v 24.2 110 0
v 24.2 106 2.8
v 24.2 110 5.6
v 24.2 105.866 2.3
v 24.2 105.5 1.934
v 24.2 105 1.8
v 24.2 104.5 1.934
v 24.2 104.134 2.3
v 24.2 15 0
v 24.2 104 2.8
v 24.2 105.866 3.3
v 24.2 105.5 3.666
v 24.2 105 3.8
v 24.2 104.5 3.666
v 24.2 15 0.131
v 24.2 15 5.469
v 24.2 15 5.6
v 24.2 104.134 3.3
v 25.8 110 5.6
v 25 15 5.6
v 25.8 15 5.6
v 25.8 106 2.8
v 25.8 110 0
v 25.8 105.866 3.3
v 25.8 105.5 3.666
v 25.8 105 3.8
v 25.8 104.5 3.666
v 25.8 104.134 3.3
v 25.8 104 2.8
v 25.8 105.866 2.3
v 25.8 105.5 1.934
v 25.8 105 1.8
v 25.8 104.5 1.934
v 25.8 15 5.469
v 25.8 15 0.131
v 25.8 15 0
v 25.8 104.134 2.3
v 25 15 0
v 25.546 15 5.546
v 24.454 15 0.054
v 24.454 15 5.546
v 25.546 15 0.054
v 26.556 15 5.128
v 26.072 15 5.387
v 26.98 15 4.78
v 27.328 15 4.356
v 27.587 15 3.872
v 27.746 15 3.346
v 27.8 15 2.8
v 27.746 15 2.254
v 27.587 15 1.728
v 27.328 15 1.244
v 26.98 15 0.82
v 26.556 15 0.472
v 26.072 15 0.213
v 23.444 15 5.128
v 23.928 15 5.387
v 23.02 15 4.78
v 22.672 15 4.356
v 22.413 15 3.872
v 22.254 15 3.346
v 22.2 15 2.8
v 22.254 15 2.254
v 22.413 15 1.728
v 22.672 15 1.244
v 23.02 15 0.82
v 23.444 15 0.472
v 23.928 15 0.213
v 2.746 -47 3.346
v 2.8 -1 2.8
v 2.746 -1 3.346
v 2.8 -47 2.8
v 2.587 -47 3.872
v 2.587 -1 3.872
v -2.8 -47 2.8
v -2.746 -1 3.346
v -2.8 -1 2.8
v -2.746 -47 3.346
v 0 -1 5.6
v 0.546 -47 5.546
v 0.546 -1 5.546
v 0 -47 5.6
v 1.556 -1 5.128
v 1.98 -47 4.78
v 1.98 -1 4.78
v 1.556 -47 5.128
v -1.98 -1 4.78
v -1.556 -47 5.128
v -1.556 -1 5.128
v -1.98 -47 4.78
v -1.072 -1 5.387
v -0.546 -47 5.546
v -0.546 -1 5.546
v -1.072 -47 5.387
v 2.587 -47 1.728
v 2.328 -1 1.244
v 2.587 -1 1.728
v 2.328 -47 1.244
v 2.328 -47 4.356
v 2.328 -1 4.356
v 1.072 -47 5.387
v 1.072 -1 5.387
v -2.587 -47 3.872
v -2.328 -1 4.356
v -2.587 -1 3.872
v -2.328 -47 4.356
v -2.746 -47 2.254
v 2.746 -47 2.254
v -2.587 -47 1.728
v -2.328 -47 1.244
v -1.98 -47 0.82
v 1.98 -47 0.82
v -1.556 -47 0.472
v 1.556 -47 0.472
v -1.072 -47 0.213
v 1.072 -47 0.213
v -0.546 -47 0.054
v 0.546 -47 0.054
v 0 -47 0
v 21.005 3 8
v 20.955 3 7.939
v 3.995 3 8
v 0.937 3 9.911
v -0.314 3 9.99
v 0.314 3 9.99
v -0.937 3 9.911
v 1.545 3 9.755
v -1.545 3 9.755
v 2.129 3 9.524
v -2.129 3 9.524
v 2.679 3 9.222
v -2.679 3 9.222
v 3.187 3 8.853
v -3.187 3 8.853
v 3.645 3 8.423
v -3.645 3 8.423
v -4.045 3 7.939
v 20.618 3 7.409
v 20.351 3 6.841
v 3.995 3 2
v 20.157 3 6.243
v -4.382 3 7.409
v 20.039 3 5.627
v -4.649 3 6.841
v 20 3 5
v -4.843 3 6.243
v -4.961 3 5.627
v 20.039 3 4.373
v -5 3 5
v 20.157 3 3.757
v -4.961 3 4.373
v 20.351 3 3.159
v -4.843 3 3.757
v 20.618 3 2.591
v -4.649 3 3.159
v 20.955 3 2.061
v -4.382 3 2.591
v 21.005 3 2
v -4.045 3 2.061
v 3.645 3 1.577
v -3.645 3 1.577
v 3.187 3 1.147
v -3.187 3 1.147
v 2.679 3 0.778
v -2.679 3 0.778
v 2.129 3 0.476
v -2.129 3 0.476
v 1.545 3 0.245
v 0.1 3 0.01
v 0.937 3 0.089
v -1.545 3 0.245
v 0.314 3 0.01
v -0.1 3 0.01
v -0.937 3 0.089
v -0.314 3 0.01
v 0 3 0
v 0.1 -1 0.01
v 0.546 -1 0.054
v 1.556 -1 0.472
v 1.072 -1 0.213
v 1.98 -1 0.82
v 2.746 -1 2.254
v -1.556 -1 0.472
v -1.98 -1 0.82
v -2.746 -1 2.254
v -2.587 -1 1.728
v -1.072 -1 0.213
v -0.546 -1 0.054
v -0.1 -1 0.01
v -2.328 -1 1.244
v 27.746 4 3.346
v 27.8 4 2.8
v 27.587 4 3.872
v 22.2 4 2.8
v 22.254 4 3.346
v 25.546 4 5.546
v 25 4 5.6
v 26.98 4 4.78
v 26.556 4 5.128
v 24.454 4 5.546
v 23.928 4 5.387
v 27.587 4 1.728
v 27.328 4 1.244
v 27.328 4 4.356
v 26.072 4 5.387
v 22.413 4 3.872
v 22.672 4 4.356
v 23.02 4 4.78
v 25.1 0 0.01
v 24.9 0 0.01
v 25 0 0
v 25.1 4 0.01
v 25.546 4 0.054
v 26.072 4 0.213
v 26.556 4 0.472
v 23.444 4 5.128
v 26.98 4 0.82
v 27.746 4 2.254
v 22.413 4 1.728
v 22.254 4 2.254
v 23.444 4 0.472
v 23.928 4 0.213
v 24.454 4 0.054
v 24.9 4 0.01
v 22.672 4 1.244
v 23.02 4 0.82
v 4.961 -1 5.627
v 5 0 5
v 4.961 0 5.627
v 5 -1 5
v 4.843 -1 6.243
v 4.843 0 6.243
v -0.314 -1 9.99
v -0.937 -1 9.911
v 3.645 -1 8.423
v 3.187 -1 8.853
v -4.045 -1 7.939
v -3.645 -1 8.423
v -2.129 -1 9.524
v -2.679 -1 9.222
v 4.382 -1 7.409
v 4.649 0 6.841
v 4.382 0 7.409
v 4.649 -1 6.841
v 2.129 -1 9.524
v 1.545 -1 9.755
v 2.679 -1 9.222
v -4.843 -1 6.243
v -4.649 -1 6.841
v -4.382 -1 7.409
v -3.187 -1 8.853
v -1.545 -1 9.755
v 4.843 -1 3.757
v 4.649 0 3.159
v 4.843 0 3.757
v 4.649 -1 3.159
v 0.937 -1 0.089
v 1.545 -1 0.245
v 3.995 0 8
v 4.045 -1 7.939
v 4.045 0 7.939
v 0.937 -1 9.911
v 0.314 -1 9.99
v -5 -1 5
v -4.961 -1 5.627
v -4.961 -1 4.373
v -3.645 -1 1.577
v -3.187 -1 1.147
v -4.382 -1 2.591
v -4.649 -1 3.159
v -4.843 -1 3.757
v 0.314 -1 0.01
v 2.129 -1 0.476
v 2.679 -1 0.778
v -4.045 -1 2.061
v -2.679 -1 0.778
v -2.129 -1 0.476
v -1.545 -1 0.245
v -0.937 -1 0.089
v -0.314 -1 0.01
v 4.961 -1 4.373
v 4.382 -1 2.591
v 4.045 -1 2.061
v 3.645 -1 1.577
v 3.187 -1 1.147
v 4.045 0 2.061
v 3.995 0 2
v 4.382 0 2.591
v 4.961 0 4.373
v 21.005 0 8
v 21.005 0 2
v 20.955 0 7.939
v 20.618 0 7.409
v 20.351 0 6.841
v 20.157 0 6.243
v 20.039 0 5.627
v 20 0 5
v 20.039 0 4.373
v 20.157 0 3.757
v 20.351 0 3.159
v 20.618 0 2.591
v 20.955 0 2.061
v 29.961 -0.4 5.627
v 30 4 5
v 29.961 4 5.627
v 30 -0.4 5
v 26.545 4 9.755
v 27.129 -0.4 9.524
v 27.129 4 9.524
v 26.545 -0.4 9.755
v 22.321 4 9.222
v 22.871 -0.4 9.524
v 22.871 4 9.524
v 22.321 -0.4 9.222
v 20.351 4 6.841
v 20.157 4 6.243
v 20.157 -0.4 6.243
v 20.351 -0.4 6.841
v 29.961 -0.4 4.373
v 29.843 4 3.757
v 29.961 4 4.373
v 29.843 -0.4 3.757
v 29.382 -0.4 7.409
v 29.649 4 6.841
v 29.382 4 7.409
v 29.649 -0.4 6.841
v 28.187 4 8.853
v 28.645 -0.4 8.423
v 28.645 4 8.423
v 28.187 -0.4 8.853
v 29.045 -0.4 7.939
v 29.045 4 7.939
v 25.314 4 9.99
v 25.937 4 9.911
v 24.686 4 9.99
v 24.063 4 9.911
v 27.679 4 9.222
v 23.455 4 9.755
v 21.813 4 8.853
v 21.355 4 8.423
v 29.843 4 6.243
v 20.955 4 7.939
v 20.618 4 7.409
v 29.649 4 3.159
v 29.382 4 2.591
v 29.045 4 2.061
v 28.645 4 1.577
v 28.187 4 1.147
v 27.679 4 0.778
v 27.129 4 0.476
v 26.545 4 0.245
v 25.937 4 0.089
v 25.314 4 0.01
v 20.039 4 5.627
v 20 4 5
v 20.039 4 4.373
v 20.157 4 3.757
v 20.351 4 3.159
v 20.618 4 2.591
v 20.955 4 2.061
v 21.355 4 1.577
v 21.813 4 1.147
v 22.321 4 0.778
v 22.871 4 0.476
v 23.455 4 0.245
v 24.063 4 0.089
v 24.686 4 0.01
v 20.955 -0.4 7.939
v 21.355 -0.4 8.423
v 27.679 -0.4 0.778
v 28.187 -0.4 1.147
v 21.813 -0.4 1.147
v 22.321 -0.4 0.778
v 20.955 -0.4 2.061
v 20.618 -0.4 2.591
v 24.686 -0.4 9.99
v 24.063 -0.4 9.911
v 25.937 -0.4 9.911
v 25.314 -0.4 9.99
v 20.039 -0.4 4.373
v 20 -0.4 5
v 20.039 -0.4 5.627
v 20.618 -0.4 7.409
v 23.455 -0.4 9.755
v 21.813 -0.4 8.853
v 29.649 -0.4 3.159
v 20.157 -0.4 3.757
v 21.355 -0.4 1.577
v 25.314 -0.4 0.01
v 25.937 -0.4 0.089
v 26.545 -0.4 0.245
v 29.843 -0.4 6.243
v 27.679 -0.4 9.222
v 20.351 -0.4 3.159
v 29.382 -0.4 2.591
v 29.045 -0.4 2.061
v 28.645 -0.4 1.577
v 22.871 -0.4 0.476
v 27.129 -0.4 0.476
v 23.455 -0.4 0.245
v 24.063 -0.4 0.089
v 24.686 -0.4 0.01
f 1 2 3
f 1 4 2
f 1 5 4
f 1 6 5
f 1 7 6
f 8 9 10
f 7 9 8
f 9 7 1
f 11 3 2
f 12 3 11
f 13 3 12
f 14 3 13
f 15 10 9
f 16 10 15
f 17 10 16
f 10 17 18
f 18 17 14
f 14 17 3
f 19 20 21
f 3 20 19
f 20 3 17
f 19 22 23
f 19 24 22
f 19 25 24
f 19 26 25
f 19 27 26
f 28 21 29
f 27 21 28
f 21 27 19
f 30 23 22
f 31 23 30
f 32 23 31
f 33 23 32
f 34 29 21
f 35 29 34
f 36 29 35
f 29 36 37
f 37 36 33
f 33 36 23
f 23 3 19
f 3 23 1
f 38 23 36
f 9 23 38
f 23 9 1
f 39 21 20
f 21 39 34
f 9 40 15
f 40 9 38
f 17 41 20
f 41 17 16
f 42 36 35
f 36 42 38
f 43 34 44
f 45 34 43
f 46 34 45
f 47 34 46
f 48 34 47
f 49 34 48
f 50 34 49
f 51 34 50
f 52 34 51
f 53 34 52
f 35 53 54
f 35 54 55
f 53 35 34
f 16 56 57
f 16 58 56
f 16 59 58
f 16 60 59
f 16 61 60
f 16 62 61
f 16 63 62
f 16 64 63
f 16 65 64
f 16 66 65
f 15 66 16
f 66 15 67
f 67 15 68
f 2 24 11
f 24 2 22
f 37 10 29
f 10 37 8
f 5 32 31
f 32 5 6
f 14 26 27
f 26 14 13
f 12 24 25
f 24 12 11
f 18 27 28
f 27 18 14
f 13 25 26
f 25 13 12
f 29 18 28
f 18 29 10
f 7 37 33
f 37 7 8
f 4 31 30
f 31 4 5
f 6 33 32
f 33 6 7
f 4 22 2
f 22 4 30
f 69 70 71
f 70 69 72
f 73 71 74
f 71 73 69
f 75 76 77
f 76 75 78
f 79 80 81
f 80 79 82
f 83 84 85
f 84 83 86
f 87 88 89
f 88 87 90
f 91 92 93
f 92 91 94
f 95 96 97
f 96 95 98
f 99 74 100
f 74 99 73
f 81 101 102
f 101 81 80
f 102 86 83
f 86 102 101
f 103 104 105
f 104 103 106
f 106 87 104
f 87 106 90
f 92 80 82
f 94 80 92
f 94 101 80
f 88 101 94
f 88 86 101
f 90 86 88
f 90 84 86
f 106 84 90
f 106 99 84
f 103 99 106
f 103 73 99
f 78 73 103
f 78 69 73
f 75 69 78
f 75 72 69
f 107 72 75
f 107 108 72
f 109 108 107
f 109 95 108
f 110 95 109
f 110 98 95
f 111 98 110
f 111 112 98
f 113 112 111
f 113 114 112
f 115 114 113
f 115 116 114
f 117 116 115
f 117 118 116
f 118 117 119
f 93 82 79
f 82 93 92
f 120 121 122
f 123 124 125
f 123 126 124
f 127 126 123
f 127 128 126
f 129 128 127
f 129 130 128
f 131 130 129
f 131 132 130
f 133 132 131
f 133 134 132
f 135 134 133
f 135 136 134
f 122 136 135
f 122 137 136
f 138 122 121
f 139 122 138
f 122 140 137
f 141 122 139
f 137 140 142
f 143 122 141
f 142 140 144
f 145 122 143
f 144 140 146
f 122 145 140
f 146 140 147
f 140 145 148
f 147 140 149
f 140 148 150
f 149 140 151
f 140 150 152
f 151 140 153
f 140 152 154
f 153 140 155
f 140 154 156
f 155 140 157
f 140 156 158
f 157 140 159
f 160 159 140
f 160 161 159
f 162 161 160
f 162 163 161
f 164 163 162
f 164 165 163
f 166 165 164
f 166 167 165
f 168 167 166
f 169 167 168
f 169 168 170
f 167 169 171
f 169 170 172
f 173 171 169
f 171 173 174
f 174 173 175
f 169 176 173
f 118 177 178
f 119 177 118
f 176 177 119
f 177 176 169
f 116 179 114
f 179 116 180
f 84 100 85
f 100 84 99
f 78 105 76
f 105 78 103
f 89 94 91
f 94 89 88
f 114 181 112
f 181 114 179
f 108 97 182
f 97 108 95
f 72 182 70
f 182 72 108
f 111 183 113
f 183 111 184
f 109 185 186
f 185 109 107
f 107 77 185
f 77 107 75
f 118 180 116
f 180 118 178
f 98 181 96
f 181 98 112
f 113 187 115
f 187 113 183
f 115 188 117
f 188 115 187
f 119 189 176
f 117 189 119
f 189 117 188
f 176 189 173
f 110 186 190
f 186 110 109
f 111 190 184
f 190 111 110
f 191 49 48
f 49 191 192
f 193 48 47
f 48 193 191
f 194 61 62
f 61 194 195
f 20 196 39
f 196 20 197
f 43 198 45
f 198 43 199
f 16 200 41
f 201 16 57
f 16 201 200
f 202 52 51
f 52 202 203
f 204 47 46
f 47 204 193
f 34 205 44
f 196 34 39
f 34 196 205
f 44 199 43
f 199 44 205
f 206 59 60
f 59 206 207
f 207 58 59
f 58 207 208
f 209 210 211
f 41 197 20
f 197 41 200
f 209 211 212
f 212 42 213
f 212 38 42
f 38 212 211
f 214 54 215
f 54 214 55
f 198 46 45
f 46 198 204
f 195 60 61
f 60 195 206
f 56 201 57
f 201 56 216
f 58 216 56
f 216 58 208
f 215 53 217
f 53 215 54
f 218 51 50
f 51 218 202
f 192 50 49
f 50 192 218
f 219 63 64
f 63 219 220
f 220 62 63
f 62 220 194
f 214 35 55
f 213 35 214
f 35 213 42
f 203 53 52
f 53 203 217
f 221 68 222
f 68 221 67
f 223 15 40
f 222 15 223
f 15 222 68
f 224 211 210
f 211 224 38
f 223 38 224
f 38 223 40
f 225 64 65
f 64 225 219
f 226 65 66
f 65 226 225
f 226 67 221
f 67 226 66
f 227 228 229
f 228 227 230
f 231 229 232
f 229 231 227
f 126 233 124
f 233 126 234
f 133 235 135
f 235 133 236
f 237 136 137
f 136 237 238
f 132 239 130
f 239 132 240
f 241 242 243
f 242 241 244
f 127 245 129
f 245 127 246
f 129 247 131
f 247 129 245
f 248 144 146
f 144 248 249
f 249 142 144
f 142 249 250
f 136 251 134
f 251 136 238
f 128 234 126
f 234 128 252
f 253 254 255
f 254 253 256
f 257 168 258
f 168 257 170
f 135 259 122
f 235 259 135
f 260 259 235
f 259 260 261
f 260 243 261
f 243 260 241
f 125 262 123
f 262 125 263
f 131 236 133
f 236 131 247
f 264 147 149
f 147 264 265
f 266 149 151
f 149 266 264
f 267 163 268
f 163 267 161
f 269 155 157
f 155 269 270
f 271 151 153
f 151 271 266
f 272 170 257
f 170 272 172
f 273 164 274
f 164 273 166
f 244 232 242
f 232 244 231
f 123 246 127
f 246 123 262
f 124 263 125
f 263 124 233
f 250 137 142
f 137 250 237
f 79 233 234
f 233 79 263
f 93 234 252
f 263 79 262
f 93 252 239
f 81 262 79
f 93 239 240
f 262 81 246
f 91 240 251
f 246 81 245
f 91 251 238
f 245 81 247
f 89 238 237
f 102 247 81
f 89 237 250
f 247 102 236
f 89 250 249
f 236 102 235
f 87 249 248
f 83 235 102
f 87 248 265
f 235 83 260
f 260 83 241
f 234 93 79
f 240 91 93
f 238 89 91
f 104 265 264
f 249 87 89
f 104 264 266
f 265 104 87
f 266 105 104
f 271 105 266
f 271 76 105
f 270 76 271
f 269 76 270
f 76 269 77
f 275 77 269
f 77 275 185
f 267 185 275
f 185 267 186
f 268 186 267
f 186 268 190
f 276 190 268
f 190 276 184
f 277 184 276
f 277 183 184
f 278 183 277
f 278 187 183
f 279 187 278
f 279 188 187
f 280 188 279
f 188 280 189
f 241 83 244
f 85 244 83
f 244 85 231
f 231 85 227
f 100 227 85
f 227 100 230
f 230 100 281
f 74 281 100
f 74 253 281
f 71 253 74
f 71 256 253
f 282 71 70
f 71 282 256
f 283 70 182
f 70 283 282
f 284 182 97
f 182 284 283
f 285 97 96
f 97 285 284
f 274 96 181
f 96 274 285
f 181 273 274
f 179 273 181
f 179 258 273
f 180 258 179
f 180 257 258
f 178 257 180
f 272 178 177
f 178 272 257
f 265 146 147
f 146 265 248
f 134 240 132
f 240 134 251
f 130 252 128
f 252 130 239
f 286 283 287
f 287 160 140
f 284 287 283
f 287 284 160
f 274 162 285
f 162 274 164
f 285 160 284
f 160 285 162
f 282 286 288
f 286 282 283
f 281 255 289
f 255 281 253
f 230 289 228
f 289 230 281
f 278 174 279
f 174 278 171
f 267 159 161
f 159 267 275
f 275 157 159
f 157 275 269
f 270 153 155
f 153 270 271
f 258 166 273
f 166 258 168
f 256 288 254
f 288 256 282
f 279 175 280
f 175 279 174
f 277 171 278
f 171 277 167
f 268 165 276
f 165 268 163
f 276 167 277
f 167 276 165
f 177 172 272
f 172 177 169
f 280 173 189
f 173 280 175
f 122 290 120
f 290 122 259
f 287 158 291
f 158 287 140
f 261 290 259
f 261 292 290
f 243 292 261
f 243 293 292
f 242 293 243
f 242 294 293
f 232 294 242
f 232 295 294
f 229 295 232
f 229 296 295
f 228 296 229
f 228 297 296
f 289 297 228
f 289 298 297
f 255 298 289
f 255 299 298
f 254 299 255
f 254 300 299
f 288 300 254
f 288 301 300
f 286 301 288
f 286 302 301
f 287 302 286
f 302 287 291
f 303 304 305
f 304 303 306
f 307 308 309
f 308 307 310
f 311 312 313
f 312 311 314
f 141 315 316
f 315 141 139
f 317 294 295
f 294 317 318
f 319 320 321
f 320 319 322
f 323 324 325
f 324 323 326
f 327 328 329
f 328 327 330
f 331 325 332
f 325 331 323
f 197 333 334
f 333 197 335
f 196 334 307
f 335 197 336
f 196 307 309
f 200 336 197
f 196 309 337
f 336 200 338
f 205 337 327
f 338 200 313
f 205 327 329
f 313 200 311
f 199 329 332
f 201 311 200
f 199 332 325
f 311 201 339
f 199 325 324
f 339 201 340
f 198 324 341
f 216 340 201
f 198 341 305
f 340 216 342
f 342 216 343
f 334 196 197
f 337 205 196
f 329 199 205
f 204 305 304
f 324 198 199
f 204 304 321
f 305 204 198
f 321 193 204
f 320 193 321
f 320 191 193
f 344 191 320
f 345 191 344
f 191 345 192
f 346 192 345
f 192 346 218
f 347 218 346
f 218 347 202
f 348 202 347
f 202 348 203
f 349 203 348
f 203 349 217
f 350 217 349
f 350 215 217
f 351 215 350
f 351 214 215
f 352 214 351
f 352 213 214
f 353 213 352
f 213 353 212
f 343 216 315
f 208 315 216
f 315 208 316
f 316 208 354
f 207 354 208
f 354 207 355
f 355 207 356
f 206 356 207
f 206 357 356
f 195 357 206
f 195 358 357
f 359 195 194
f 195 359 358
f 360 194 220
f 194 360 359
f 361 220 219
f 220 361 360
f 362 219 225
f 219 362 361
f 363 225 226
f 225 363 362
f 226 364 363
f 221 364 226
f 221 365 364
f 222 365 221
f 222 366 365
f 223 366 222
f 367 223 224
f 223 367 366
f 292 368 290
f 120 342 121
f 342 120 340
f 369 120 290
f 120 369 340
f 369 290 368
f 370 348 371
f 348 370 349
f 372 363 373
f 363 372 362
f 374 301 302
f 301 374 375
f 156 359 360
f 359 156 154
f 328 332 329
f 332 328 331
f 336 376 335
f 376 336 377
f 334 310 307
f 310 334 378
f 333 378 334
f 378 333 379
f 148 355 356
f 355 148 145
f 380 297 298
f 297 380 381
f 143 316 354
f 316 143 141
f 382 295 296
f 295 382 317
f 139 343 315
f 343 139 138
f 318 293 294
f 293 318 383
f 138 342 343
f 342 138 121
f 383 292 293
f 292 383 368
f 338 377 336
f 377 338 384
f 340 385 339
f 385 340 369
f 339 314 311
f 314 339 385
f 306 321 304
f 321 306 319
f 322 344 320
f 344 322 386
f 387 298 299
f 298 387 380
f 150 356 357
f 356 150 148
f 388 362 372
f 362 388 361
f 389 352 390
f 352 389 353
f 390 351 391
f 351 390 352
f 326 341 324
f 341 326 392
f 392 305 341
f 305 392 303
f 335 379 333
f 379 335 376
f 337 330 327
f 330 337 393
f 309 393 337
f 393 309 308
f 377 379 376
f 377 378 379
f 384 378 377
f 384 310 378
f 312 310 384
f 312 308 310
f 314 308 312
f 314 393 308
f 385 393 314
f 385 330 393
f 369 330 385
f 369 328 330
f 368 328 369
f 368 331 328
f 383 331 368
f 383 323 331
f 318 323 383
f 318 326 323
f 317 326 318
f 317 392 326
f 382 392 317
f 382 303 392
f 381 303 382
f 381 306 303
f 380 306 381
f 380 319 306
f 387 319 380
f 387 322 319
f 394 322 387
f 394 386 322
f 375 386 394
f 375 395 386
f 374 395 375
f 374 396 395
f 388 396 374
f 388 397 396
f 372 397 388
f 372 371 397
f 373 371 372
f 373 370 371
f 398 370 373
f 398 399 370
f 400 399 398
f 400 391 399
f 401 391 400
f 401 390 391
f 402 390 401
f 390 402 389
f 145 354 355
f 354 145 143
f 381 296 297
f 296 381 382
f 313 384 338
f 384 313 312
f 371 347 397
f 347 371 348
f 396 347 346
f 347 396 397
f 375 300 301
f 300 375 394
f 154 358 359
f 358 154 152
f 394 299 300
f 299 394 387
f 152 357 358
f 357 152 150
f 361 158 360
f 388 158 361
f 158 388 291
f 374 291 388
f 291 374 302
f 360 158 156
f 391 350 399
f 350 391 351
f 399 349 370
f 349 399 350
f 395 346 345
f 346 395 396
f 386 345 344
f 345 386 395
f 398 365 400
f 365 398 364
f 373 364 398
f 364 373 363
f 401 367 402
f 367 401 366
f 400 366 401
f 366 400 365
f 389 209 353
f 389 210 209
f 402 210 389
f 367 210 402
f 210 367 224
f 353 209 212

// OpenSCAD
translate([0,3,2.8])
	rotate([90,0,0])
		cylinder(50,2.8,2.8, $fn=32);


translate([25,15,2.8])
	rotate([90,0,0])
		cylinder(15,2.8,2.8, $fn=32);

difference(){
translate([24.2,15,0])
	cube([1.6,95,5.6]);
translate([24,105,2.8])
	rotate([90,0,90])
		cylinder(4,1,1, $fn=12);
}


translate([0,3,5])
	rotate([90,0,0])
		cylinder(4,5,5, $fn=50);
translate([0,0,2])
	cube([25,3,6]);

translate([25,4,5])
	rotate([90,0,0])
		cylinder(4.4,5,5, $fn=50);
